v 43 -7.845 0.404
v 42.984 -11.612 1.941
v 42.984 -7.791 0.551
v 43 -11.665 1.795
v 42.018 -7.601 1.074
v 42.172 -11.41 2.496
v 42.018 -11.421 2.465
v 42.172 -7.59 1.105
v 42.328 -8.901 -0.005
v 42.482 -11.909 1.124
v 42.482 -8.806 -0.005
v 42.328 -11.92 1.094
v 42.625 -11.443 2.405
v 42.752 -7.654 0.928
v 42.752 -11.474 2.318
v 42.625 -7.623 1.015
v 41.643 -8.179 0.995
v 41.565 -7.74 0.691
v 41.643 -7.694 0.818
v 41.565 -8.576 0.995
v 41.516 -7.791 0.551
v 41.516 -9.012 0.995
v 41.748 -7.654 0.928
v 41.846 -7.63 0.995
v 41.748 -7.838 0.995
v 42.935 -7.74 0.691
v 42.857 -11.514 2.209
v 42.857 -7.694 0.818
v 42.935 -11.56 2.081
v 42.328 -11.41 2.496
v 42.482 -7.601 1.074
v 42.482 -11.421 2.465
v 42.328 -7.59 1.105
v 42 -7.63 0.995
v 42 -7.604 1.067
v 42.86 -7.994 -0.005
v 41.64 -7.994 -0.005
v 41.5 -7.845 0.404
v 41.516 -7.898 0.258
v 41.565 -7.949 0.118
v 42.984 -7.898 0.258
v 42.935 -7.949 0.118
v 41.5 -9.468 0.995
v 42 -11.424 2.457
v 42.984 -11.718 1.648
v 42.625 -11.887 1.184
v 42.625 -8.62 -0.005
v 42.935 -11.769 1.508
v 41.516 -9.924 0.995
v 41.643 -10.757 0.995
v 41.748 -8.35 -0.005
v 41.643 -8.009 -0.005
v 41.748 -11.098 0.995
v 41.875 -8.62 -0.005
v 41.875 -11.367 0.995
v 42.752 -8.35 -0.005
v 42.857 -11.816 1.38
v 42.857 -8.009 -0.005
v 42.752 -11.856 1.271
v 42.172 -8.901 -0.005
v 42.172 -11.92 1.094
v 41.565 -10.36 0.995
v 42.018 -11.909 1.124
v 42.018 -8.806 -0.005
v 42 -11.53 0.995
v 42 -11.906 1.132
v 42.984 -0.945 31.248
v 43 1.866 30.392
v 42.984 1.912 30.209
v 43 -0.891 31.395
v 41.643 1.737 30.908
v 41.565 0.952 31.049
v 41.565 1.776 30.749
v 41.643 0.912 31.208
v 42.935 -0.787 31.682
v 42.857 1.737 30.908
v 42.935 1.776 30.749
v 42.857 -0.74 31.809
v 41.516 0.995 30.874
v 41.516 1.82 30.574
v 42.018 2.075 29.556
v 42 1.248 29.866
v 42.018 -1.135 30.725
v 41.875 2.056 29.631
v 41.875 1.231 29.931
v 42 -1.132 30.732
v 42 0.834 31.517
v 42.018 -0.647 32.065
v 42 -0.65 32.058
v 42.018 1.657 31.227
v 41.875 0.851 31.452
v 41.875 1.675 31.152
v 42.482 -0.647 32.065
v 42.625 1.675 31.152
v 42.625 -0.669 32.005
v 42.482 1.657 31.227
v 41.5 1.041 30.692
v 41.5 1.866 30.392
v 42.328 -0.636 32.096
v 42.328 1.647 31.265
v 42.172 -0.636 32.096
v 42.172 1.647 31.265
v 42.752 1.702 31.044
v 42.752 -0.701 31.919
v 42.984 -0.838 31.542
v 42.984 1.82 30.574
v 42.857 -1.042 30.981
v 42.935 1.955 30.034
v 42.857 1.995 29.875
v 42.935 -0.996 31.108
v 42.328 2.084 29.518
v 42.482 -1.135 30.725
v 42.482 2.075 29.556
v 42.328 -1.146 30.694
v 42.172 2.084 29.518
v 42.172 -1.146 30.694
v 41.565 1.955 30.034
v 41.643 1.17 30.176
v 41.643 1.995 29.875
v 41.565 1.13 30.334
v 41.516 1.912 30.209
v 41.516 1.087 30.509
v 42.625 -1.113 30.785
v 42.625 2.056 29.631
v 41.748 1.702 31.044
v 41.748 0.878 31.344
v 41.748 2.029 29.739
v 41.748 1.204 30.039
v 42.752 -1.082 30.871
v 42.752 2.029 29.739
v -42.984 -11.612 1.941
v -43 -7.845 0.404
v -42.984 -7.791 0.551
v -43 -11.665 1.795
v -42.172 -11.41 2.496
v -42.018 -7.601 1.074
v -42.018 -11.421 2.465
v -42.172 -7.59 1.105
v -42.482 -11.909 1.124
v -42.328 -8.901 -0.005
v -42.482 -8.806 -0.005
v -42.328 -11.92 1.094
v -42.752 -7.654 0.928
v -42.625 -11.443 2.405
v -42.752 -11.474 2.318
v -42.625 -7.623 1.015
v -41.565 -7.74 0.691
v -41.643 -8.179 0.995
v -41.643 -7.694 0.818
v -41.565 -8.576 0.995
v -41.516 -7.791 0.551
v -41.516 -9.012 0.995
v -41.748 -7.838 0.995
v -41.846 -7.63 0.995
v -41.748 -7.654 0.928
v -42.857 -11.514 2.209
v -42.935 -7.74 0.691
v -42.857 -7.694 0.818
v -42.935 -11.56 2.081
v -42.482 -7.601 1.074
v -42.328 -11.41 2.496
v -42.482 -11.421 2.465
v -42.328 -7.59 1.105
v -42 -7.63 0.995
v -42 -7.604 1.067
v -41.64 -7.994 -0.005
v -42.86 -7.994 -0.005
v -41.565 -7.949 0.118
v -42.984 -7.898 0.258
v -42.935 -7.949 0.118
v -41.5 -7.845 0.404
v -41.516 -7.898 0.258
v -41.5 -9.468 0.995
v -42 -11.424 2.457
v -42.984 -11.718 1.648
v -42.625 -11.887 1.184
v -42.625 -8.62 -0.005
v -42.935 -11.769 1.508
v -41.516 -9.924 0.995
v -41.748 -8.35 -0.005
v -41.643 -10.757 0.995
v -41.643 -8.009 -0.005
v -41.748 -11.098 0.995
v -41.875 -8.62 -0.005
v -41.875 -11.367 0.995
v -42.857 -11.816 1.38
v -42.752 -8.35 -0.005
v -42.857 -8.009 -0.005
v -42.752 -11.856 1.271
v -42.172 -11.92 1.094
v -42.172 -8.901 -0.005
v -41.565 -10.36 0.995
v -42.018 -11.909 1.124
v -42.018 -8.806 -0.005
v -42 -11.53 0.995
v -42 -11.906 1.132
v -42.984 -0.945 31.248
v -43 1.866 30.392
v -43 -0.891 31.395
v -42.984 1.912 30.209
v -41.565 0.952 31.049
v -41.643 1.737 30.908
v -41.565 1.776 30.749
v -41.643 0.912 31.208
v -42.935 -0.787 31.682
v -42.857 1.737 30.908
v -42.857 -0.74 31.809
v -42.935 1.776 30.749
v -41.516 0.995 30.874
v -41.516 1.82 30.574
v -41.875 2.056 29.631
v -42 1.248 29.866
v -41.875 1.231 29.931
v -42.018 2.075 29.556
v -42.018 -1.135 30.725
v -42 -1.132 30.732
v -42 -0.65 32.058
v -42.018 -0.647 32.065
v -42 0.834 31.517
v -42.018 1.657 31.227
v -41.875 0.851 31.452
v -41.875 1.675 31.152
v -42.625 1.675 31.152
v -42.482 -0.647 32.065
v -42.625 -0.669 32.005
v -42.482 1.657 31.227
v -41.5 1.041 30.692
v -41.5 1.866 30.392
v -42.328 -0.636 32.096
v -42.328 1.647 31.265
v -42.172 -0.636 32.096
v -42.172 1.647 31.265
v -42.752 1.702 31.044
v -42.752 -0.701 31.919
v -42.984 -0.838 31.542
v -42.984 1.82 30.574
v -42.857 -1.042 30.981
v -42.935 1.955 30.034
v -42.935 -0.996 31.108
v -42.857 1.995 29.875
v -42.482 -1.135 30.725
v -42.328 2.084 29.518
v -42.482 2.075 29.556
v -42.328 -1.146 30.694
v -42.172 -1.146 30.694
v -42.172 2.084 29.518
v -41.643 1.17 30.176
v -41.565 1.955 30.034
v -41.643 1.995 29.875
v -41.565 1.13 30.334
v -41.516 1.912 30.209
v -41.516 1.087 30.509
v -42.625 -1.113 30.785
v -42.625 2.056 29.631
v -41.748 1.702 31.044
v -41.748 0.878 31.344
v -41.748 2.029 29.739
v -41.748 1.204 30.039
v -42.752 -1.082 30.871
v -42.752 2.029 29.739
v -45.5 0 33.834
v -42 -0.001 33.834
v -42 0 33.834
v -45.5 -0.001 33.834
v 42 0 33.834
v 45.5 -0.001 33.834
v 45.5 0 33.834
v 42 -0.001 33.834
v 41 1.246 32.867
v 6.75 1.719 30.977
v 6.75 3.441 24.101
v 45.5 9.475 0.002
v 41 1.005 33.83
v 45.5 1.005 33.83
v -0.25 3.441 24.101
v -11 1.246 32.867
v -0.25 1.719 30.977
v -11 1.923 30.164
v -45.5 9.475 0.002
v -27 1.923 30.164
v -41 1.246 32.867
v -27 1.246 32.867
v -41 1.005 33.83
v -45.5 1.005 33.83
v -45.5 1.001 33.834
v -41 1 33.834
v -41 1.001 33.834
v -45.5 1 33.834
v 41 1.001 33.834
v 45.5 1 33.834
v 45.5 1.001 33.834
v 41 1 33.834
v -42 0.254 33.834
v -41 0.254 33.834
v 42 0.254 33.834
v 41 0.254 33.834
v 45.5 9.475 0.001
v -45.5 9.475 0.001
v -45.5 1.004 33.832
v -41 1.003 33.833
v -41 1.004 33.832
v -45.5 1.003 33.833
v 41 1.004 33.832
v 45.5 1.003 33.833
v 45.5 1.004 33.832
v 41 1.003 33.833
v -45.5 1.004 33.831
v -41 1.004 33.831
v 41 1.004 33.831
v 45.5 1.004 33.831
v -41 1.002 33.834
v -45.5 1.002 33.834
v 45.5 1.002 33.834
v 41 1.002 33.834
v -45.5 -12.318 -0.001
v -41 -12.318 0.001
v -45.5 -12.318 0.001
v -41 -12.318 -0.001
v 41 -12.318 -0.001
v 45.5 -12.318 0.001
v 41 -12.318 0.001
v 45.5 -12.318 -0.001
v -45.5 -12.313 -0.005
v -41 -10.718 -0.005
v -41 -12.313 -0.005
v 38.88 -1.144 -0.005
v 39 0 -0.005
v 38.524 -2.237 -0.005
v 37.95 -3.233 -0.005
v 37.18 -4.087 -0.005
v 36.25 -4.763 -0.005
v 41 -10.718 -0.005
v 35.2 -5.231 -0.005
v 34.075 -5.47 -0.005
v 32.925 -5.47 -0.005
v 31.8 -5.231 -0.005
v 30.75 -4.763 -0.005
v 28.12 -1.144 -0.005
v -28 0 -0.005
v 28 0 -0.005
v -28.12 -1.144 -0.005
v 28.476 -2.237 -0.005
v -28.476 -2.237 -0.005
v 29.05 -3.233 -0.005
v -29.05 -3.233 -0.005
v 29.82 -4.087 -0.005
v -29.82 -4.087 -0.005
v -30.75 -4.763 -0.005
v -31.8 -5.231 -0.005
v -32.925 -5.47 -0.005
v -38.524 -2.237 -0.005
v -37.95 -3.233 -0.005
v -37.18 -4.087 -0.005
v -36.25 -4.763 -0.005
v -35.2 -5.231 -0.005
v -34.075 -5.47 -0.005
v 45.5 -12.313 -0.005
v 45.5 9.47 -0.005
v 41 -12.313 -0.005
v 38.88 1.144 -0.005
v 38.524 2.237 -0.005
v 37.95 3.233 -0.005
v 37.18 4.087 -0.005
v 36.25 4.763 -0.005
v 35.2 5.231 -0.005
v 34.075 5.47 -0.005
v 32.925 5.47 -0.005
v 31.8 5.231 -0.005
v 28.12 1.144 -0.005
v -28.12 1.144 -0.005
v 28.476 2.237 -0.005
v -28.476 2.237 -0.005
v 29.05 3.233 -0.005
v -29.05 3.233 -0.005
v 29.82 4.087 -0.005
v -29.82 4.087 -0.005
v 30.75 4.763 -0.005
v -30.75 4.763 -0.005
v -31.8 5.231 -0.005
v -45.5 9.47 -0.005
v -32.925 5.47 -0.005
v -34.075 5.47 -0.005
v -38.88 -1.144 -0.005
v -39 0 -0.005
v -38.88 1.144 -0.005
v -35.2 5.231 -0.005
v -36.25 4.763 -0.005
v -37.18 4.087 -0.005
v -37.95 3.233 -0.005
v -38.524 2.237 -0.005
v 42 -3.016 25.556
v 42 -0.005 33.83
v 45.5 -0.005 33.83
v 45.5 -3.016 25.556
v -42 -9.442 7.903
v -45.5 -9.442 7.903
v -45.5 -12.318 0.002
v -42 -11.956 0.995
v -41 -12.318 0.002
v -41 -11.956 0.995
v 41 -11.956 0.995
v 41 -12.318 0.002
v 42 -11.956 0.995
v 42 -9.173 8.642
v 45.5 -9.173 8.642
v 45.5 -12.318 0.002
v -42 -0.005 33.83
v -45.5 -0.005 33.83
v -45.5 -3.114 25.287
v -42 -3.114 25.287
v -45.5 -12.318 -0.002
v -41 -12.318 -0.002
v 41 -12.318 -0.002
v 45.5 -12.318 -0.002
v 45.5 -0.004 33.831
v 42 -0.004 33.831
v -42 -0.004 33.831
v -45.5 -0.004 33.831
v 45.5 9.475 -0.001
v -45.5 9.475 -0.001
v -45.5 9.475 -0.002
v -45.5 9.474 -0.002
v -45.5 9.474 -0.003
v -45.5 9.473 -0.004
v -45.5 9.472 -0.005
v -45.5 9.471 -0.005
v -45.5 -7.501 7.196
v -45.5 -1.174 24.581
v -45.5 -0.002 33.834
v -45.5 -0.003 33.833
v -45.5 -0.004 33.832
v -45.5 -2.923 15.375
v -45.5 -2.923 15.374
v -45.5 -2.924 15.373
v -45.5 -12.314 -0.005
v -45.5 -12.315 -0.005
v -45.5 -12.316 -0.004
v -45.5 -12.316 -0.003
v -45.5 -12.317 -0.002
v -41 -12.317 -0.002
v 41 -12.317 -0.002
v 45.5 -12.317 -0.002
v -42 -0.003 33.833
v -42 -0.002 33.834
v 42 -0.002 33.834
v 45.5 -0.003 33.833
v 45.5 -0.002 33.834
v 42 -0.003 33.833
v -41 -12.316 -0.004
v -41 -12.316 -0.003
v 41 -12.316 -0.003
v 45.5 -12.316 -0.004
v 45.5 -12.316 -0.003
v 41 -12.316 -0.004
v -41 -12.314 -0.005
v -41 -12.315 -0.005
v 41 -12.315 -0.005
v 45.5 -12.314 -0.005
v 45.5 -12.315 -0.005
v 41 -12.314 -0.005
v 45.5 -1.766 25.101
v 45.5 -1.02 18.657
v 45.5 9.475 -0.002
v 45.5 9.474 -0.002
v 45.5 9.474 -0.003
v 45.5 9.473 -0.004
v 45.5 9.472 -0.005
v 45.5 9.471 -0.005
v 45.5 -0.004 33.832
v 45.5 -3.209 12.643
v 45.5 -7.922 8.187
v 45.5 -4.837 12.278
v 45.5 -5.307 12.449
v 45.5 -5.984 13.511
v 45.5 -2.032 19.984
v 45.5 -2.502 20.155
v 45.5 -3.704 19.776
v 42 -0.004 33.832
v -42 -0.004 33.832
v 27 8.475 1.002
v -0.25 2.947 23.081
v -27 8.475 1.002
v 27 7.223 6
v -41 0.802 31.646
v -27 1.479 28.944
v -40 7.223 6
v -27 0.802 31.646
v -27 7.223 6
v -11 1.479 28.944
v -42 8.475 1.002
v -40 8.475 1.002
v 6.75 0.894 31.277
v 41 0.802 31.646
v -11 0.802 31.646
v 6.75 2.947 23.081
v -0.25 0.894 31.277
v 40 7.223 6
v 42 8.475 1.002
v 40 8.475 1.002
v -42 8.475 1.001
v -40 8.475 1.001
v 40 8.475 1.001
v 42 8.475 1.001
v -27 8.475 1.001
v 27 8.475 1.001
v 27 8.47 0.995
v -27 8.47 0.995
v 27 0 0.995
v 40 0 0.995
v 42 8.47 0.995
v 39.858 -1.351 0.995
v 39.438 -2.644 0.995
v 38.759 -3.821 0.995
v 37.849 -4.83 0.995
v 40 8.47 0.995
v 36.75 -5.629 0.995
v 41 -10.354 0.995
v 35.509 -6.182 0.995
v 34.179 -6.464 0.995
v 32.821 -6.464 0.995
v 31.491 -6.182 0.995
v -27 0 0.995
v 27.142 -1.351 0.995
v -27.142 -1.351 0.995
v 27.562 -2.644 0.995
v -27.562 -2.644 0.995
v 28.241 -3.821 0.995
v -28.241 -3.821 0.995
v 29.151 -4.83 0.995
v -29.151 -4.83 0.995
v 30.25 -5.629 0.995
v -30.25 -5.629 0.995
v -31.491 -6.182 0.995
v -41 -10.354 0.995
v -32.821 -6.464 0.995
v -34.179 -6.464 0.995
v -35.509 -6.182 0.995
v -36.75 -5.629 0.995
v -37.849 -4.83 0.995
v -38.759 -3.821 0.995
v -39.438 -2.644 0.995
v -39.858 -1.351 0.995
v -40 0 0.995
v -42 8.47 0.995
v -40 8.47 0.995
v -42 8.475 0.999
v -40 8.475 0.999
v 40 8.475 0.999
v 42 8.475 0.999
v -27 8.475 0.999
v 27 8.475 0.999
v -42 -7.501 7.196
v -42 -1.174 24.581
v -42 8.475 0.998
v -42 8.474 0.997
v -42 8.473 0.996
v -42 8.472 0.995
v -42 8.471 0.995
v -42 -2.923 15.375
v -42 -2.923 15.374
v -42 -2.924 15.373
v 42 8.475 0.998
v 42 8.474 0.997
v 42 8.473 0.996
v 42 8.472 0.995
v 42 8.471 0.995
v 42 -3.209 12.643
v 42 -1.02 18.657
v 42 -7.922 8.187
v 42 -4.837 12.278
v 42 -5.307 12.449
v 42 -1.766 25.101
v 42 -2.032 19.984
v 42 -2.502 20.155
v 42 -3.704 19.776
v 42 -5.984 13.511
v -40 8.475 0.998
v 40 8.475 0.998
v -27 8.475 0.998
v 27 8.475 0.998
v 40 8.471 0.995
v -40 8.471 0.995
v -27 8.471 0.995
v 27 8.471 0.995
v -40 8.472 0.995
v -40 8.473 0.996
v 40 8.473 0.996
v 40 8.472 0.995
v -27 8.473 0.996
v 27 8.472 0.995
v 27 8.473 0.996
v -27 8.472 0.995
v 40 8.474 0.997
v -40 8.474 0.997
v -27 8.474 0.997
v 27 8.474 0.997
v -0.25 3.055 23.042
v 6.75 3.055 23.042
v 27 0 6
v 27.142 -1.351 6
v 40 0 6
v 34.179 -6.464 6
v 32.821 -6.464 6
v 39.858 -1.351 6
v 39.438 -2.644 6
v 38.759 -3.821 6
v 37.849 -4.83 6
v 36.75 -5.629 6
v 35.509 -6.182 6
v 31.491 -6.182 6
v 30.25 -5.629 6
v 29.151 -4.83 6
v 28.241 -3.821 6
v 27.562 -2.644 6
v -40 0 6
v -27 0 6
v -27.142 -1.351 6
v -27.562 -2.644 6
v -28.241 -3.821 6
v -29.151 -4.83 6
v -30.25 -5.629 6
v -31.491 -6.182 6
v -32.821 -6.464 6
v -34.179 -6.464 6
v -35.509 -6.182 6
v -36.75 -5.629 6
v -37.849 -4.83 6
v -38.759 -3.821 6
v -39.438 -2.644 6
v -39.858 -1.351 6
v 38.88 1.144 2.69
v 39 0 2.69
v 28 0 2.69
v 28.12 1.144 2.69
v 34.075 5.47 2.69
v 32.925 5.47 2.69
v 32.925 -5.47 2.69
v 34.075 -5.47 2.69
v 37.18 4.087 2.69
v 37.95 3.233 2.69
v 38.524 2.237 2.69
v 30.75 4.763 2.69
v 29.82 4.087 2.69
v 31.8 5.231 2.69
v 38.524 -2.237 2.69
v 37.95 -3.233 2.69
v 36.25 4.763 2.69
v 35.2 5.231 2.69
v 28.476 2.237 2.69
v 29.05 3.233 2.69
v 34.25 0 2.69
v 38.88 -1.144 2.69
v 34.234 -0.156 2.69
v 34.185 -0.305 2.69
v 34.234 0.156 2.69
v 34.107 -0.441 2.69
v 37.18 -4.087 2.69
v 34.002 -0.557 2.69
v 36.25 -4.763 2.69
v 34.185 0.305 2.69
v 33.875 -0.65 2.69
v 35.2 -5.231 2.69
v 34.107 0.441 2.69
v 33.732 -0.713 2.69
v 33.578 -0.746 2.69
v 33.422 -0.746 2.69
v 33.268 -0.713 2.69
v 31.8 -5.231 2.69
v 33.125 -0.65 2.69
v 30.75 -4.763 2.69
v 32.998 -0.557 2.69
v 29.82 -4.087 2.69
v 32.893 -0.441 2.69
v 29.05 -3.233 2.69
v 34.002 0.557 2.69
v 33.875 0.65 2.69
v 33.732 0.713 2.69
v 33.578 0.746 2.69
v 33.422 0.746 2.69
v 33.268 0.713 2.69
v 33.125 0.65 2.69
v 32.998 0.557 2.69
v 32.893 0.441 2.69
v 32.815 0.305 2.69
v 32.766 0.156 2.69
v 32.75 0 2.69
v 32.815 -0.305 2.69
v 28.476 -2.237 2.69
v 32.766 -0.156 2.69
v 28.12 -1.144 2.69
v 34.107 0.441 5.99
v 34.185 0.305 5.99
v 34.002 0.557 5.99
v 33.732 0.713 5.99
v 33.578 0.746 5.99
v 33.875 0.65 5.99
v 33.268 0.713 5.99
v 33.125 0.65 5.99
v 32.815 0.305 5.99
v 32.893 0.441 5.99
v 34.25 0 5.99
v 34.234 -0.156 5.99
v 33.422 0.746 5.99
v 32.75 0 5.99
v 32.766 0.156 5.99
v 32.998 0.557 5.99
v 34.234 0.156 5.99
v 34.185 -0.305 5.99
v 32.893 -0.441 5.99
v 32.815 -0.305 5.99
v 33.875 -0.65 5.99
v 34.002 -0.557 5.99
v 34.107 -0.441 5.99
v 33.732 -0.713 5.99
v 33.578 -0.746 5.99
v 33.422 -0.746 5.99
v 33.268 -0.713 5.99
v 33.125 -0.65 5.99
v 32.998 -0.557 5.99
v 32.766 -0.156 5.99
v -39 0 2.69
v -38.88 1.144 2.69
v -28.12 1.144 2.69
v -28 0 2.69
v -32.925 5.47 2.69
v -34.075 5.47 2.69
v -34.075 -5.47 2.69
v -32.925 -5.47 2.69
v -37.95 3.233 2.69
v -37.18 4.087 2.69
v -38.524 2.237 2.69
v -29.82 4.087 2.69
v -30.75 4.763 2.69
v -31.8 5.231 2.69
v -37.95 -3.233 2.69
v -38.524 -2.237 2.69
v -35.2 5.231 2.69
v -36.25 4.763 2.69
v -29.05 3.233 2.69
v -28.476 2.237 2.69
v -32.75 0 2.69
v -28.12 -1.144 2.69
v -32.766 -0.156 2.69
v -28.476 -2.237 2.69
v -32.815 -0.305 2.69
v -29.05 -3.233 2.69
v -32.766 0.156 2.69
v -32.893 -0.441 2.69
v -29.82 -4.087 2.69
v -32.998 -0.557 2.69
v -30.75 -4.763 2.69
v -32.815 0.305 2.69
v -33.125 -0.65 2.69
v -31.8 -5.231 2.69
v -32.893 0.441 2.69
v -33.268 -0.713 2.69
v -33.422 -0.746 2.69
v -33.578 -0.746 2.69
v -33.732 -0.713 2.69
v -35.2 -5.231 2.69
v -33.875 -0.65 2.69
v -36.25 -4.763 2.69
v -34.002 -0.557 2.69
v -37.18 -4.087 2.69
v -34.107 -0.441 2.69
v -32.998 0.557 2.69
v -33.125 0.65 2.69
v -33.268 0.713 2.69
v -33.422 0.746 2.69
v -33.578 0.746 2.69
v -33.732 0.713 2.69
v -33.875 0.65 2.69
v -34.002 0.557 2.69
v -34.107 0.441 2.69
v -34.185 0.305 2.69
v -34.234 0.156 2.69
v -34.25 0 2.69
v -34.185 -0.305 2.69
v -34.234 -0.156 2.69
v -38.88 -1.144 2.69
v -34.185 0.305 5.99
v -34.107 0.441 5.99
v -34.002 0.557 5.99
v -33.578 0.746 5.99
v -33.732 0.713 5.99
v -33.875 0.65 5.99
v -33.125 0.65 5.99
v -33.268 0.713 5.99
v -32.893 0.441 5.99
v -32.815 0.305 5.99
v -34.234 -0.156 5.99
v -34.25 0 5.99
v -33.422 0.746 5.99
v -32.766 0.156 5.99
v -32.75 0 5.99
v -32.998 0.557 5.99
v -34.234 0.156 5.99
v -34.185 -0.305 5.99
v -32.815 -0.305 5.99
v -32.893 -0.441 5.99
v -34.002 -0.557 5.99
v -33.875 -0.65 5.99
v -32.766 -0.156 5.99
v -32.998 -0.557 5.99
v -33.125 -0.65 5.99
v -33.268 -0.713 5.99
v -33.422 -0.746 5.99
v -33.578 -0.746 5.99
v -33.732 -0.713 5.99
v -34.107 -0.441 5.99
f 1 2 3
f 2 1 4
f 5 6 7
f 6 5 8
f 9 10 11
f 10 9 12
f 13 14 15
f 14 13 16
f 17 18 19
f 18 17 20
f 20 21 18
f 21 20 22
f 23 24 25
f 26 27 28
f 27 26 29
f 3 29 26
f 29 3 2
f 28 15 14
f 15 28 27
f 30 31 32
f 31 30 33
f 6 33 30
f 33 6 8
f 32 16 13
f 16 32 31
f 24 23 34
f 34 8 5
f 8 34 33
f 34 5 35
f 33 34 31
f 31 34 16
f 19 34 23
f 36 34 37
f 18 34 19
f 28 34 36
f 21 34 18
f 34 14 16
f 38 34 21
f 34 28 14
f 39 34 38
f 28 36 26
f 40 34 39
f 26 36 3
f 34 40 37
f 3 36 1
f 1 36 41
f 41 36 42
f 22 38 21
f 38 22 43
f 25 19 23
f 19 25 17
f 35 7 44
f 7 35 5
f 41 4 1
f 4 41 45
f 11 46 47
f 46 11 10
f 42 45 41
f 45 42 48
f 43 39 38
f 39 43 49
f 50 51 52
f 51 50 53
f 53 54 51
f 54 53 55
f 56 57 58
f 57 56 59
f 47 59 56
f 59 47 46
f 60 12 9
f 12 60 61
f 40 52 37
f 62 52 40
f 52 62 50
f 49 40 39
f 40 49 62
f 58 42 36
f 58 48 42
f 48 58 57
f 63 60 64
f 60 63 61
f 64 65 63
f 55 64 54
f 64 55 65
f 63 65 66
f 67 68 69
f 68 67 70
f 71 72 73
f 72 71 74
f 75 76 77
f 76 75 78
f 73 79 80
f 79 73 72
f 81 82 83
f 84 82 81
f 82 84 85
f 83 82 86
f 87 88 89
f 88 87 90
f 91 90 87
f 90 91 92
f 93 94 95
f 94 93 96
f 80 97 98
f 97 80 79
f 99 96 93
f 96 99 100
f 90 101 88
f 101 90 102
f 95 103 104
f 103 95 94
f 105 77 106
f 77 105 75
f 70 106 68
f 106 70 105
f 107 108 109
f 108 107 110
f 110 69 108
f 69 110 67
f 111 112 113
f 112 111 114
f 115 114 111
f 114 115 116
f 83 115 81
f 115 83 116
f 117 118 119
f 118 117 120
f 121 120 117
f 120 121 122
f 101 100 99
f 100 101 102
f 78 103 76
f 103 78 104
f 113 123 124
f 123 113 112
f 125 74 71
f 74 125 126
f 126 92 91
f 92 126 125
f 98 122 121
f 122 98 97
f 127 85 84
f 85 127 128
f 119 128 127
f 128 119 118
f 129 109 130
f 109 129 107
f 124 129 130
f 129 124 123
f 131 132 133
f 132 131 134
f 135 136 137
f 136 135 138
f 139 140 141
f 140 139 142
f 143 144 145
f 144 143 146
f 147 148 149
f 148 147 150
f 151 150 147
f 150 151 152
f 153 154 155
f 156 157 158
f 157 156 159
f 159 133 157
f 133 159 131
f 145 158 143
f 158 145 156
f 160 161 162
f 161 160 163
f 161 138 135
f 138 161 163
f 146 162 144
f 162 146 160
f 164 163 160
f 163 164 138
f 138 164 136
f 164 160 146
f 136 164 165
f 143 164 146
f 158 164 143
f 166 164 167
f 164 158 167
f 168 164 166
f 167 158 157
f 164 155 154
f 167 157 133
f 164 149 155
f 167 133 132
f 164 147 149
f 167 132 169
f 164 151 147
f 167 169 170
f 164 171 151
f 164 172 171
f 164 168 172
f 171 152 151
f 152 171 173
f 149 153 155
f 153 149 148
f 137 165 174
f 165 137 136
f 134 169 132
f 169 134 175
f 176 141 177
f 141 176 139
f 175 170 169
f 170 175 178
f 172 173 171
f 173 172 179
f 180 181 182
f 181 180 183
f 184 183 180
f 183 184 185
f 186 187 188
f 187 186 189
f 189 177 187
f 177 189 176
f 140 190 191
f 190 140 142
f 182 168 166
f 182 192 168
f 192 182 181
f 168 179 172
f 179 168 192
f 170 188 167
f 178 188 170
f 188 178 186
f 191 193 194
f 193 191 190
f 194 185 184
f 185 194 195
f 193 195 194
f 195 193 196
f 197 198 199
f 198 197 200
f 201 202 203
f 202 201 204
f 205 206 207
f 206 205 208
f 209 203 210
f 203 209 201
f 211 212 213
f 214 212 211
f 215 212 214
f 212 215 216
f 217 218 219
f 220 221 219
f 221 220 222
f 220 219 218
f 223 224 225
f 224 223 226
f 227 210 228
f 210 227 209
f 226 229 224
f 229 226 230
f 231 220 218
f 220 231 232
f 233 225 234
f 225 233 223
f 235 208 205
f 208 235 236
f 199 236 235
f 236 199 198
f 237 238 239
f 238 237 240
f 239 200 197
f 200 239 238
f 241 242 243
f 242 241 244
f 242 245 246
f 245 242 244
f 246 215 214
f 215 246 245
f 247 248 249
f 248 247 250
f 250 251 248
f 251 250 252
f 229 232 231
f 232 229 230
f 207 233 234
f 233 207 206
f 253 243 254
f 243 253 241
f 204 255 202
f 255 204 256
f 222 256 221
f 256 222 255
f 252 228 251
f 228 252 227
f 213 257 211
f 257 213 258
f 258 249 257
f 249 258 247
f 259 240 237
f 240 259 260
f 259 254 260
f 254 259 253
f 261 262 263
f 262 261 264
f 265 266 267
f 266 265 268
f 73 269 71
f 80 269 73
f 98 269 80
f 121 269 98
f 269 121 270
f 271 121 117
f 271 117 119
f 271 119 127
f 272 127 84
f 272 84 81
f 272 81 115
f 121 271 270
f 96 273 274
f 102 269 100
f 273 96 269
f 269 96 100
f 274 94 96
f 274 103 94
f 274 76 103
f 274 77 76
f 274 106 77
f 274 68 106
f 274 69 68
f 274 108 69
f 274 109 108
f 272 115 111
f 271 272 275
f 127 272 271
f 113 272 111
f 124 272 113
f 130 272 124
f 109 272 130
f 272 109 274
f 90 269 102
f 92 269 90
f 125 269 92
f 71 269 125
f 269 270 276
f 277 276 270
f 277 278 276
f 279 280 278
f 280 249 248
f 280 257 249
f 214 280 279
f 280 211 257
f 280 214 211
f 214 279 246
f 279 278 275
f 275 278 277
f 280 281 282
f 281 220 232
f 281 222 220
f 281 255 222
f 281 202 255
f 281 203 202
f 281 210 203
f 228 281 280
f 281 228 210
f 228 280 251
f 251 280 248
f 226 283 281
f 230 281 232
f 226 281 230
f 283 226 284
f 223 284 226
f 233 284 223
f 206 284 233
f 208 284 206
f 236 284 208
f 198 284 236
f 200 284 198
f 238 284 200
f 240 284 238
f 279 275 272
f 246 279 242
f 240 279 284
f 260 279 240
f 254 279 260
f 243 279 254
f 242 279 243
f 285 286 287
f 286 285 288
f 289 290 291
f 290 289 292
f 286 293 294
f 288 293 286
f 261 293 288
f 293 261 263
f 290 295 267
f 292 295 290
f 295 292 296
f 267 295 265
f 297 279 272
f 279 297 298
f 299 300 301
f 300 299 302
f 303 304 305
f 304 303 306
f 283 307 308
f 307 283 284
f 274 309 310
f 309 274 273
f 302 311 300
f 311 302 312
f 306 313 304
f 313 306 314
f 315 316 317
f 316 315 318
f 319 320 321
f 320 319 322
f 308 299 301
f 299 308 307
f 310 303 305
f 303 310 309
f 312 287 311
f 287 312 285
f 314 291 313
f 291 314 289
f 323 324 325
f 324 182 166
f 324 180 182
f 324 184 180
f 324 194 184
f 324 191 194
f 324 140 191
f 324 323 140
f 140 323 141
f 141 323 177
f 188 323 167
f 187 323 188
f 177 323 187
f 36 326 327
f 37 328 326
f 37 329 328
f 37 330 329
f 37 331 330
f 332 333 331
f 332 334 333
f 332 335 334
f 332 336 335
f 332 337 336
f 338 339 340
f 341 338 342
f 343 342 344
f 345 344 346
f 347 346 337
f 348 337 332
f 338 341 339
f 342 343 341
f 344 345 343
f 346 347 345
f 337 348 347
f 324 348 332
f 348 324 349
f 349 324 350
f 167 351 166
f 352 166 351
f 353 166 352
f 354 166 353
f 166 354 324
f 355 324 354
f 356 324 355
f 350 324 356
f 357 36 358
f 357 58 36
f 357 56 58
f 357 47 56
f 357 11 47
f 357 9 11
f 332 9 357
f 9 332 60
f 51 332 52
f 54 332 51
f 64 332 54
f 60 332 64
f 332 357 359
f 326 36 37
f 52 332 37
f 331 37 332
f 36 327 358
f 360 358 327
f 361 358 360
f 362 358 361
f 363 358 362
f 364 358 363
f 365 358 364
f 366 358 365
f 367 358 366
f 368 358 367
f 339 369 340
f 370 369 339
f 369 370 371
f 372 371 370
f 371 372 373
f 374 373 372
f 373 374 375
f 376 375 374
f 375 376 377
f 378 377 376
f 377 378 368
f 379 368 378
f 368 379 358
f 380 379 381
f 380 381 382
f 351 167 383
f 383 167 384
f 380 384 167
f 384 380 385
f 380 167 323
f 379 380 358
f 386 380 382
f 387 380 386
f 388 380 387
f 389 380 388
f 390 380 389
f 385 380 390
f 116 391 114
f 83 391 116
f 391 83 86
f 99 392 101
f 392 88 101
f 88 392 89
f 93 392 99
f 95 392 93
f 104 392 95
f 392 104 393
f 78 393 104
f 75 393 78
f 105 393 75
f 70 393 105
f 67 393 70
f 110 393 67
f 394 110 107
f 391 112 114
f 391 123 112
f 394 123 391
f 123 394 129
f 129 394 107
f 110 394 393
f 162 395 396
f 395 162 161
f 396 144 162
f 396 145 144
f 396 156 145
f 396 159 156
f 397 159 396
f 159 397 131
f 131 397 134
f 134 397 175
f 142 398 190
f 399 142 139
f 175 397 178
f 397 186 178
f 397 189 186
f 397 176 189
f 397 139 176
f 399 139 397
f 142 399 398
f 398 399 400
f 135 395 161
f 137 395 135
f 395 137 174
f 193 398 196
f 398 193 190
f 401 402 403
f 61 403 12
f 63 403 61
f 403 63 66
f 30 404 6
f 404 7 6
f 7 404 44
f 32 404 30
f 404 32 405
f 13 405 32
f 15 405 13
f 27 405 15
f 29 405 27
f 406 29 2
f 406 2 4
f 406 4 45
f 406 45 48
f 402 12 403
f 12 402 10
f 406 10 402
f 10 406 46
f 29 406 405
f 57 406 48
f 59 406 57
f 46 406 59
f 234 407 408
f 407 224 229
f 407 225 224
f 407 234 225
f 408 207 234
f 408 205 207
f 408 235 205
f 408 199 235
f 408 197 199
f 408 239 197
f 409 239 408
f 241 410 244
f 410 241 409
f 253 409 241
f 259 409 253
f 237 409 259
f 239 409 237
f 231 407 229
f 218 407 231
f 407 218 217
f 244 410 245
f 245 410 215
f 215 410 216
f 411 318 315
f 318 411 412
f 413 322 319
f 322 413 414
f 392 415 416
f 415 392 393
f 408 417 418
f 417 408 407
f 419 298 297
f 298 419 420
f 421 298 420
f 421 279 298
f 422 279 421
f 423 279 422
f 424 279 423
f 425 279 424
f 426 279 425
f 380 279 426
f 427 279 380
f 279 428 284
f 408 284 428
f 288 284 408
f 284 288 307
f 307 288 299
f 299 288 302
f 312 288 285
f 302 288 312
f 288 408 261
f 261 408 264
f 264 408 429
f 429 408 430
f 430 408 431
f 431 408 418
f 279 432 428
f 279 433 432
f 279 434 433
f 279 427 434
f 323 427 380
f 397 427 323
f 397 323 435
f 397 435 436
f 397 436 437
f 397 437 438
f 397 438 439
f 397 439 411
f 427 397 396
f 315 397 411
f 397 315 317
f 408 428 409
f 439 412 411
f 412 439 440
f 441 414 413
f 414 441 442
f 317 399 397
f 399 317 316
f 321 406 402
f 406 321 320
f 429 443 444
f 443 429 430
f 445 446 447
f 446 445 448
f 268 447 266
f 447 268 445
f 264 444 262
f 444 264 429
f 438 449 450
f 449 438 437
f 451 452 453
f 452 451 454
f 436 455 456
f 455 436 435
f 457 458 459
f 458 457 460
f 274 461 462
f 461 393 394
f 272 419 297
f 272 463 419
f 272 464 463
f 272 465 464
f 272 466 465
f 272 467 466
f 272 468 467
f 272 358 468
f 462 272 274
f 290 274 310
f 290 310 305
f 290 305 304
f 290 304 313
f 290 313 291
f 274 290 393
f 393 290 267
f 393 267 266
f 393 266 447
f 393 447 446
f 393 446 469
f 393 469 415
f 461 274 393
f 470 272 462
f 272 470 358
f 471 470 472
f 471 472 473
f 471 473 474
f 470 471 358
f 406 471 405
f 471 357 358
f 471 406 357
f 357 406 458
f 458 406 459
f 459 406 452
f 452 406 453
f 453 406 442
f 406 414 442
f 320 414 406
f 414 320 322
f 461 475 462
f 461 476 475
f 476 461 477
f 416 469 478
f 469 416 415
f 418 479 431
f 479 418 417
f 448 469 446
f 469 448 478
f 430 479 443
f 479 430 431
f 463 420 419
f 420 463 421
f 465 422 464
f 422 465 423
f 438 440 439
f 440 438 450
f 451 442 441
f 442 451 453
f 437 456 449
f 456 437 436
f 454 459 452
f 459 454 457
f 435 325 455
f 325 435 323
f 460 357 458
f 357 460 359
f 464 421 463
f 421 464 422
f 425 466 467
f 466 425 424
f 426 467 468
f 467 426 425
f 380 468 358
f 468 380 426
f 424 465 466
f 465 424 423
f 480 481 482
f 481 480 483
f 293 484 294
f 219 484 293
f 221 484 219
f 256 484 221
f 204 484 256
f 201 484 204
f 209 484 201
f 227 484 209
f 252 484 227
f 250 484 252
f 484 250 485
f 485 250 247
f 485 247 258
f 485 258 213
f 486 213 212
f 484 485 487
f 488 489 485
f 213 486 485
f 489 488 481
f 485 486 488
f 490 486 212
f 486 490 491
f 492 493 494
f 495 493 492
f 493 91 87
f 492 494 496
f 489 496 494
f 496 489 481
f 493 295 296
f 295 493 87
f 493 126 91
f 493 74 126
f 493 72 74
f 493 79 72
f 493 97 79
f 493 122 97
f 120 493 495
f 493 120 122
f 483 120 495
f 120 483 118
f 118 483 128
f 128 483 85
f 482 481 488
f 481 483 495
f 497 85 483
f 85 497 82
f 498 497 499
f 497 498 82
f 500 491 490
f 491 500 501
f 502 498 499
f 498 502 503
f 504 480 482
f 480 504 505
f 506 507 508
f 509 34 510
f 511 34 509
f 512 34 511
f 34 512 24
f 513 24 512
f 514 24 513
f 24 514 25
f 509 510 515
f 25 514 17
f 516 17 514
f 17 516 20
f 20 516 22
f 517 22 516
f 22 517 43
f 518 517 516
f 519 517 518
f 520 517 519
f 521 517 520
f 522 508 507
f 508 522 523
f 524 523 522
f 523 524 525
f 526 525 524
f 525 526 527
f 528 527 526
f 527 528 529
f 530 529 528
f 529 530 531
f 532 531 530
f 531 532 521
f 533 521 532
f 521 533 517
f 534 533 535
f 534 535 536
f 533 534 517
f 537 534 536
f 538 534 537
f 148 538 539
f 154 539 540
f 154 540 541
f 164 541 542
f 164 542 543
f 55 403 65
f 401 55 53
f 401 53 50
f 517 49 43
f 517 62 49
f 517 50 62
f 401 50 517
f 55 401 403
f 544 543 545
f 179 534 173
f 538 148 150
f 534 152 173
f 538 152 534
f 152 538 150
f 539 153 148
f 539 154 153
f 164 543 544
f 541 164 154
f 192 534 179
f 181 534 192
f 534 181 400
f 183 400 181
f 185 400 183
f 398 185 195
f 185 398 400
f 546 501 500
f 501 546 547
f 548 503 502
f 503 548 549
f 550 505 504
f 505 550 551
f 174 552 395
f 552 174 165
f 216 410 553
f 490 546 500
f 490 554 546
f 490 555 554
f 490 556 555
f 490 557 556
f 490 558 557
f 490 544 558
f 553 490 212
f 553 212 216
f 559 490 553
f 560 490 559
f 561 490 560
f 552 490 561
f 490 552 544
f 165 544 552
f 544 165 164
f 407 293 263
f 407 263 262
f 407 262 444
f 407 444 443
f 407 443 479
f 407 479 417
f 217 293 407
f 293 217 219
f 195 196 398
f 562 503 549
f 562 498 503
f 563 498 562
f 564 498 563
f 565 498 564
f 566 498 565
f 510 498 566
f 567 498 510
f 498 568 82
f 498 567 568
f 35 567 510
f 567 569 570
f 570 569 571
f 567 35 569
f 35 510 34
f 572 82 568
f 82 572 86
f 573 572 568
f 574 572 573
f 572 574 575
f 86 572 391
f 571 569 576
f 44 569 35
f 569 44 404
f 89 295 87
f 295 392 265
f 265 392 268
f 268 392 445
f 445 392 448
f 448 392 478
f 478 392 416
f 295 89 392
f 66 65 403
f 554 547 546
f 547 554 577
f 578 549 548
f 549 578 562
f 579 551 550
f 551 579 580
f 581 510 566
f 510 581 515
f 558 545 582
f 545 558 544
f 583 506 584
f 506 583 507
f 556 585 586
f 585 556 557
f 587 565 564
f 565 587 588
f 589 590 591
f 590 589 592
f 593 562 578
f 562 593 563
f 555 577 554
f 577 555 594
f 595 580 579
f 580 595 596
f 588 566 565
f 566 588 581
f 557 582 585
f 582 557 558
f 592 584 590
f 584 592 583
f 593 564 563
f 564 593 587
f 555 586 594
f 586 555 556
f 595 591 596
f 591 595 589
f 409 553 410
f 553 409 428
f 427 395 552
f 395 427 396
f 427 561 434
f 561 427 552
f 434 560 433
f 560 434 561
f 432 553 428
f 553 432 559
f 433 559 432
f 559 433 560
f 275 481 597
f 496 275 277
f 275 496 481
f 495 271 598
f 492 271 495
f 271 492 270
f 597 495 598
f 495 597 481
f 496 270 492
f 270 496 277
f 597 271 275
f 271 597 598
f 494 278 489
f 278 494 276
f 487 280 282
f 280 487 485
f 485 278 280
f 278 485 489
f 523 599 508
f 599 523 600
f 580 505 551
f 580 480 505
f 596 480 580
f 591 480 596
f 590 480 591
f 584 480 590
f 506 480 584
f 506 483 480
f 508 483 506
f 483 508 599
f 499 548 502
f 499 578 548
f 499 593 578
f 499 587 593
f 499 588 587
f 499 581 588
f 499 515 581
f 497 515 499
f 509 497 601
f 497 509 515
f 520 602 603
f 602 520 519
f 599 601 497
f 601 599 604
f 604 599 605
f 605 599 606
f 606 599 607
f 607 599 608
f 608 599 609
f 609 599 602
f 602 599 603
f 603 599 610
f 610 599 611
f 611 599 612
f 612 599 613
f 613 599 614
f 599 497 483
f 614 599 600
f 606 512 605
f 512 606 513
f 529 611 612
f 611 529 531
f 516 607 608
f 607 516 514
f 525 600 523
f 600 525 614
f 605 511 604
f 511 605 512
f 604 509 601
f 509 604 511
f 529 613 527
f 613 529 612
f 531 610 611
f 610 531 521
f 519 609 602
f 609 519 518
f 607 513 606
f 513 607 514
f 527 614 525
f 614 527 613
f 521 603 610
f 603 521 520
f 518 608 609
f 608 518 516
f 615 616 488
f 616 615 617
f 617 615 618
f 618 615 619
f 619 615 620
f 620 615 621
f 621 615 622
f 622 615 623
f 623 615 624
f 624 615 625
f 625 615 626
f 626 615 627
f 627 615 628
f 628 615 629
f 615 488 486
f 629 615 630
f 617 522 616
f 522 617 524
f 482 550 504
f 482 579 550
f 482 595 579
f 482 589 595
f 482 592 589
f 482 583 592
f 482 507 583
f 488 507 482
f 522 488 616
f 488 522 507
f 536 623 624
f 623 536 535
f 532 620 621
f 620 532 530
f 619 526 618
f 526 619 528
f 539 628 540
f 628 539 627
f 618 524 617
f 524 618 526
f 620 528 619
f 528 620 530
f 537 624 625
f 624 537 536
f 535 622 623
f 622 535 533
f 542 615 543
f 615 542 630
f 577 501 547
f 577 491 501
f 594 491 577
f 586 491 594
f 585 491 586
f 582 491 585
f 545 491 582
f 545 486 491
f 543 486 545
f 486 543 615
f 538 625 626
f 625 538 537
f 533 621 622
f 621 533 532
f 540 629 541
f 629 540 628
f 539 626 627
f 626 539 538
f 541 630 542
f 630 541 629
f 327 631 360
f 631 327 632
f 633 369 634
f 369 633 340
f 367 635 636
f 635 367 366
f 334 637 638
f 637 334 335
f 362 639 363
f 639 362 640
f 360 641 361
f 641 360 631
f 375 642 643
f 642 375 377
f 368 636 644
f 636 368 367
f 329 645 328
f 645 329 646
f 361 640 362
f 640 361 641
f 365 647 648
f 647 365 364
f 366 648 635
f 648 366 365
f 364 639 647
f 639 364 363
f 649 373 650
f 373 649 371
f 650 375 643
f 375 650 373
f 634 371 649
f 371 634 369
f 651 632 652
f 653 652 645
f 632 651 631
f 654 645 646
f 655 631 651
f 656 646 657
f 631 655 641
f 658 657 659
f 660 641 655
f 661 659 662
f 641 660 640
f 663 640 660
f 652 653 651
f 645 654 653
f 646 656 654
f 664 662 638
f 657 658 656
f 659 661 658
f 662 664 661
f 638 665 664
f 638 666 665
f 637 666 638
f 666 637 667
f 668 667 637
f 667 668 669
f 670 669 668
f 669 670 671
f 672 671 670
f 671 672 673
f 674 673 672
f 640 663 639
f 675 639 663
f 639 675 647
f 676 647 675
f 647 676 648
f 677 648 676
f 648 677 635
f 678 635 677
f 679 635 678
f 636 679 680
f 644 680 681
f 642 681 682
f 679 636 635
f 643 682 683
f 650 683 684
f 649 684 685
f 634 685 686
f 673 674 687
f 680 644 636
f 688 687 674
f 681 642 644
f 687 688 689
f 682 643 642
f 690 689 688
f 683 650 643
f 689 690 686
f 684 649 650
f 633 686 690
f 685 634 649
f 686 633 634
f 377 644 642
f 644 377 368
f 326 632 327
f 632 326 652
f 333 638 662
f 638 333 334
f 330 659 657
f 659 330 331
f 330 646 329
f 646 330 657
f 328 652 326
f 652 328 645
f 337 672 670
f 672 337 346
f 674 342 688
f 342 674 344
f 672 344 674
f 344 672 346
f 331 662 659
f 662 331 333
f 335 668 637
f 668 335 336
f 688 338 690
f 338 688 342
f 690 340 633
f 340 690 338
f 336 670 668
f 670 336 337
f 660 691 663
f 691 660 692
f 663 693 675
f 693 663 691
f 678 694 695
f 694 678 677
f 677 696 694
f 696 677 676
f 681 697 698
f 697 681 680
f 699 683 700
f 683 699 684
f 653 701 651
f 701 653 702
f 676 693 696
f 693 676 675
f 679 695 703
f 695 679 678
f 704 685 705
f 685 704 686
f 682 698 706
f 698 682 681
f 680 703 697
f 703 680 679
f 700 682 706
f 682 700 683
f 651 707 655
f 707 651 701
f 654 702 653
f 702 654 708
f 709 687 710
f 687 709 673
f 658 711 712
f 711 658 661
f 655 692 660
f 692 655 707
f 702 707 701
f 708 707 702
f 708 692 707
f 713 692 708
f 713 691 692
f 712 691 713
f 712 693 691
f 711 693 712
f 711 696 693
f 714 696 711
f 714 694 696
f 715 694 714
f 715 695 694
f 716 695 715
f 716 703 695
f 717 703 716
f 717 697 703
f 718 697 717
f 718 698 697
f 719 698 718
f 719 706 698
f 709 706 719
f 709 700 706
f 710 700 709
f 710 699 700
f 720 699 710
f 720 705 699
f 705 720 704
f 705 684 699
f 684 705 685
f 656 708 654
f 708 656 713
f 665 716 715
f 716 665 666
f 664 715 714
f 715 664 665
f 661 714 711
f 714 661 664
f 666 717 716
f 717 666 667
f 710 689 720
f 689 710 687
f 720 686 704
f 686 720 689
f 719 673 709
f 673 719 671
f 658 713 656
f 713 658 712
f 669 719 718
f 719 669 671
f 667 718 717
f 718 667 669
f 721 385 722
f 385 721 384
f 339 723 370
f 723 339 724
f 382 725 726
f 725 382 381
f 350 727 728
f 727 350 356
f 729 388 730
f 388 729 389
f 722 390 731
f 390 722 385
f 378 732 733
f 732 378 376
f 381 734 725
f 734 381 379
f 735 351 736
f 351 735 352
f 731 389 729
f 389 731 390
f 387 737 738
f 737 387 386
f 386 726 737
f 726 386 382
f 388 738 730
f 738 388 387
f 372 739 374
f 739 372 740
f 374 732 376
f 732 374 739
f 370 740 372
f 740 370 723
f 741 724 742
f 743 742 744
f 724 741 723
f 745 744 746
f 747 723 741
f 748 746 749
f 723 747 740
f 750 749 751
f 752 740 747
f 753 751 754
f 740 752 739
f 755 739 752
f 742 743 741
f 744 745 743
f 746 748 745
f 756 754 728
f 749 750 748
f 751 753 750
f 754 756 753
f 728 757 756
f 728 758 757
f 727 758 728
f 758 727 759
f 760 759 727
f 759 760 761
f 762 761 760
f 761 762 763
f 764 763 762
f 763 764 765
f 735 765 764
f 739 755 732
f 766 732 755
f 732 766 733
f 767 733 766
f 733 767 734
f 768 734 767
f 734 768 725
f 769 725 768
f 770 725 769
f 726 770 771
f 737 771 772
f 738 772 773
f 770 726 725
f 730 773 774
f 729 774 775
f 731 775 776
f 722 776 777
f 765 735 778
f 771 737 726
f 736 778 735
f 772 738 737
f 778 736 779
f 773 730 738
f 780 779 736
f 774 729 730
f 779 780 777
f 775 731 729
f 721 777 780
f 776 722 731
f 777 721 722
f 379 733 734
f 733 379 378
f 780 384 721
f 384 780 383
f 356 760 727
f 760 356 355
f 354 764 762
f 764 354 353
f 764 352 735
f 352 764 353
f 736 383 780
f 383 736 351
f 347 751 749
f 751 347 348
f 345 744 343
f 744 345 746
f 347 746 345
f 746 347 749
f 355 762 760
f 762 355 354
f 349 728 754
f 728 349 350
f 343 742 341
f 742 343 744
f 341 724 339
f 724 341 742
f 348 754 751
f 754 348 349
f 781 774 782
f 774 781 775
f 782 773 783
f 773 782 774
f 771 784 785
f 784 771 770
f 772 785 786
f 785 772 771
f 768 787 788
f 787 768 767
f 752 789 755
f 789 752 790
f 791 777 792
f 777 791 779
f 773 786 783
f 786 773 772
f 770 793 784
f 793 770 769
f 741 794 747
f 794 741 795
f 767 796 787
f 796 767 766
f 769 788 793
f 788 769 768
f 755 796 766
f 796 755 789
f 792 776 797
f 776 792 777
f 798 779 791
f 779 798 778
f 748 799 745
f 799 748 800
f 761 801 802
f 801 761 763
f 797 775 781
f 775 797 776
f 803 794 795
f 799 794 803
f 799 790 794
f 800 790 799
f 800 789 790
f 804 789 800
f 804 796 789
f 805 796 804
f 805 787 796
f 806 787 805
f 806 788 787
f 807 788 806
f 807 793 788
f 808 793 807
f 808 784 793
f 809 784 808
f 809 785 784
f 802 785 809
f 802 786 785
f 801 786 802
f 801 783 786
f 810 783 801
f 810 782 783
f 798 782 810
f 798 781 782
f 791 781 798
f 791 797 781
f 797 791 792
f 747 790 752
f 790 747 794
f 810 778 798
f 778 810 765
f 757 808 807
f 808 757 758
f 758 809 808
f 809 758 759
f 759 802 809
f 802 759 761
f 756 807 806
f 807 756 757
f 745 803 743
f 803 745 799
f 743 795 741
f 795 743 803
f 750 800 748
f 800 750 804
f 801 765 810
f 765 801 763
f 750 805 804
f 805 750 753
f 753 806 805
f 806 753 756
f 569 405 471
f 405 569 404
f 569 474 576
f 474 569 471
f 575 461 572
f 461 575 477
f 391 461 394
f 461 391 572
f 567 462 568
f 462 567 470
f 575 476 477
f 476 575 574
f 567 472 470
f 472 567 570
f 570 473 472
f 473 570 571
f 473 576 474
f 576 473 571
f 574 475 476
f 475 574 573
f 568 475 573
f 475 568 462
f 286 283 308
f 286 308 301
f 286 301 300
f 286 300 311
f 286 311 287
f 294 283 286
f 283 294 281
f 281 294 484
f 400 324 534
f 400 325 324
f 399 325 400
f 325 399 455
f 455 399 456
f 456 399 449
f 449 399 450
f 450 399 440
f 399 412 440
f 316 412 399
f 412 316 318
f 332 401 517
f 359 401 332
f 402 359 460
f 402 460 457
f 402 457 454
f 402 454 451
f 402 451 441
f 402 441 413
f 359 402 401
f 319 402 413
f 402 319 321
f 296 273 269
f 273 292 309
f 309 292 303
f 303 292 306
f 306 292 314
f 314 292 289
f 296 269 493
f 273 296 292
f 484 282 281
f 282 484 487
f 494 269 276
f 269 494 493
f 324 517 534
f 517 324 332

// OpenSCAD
// file: copy_mirror.scad
// Borrowed from http://forum.openscad.org/Wish-mirror-copy-true-td10681.html
module copy_mirror(vec=[0,1,0])
{
    children();
    mirror(vec) children();
}
// main file
$fn=30;

include <copy_mirror.scad>

BOARD_X = 83+2*2;
BOARD_Y = 27.5+2*2;

DISP_X=89;
DISP_Y=36;
DISP_Z=1.5;

DISP_E_X=68.3;
DISP_E_Y=30.5;

CASE_X=DISP_X+2;
CASE_Y=DISP_Y+2;
CASE_Z=DISP_Z+6;

SIDE_B_EDGE_Y=3.5*2;
SIDE_B_YPOS=4;

BOARD_ANGLE=80;

module display() {
  translate([0, 0, DISP_Z/2])
  cube(size=[DISP_X, DISP_Y, DISP_Z], center=true);

  translate([-DISP_X/2+DISP_E_X/2+7.2, 0, DISP_Z])
  color("green")
  cube(size=[DISP_E_X, DISP_E_Y, 0.1], center=true);
}

DISP_ANGLE=70;
*%translate([0, -DISP_Y*cos(DISP_ANGLE)/2-1, DISP_Y*sin(DISP_ANGLE)/2])
rotate([DISP_ANGLE, 0, 0])
display();

BAT_X=43;
BAT_Y=21.7;
BAT_Z=5.7;
// BAT
*%color("red")
translate([0, -(DISP_Y)*cos(DISP_ANGLE)/2+3, BAT_Y*sin(DISP_ANGLE)/2+6])
rotate([DISP_ANGLE, 0, 0])
cube(size=[BAT_X, BAT_Y, BAT_Z], center=true);

module caseBase(args) {
  hull() {
    translate([0, 0, DISP_Y*sin(DISP_ANGLE)])
    rotate([0, 90, 0])
    cylinder(d=0.01, h=CASE_X, center=true);

    translate([0, 1, DISP_Y*sin(DISP_ANGLE)])
    rotate([0, 90, 0])
    cylinder(d=0.01, h=CASE_X, center=true);

    translate([0, -DISP_Y*cos(DISP_ANGLE), 0])
    rotate([0, 90, 0])
    cylinder(d=0.01, h=CASE_X, center=true);

    translate([0, BOARD_Y*cos(BOARD_ANGLE)+SIDE_B_YPOS, 0])
    rotate([0, 90, 0])
    cylinder(d=0.01, h=CASE_X, center=true);
  }
}

module case() {
  difference() {
    union() {
      difference() {
        caseBase();

        // inner space
        translate([0, -1.0, 1])
        translate([0, 0, 0])
        resize([CASE_X-SIDE_B_EDGE_Y, 0, 0])
        caseBase();

        // display con
        CON_A_Z=3;
        translate([0, -DISP_Y*cos(DISP_ANGLE)/2-1, DISP_Y*sin(DISP_ANGLE)/2])
        rotate([DISP_ANGLE, 0, 0])
        translate([-(DISP_X/2-10/2)-1, 0, -CON_A_Z/2])
        hull() {
          cube(size=[10, 18.5, CON_A_Z], center=true);
          translate([0, 0, -CON_A_Z/2-1.5])
          rotate([0, 90, 0])
          cylinder(d=0.01, h=10, center=true);
        }

        // screw holes
        translate([0, -DISP_Y*cos(DISP_ANGLE)/2-1, DISP_Y*sin(DISP_ANGLE)/2])
        rotate([DISP_ANGLE, 0, 0])
        copy_mirror([1,0,0])
        copy_mirror([0,1,0])
        difference() {
          translate([DISP_X/2-2.25, -DISP_Y/2+2.25, -5])
          cylinder(d=1.5, h=CASE_Z, center=!true);
        }

        // push sw
        translate([0, -DISP_Y*cos(DISP_ANGLE)/2-1, DISP_Y*sin(DISP_ANGLE)/2])
        rotate([DISP_ANGLE, 0, 0])
        translate([-DISP_X/2+47.75, DISP_Y/2-5.25, 0])
        cube(size=[7, 7, CASE_Z*2], center=true);

        // sd slot
        translate([0, -DISP_Y*cos(DISP_ANGLE)/2-1, DISP_Y*sin(DISP_ANGLE)/2])
        rotate([DISP_ANGLE, 0, 0])
        translate([-DISP_X/2+25.5, DISP_Y/2, 0])
        cube(size=[16, 20, 8], center=true);
      }

      // magnet
      intersection() {
        resize([CASE_X-SIDE_B_EDGE_Y, 0, 0])
        caseBase();

        copy_mirror([1, 0, 0])
        translate([BOARD_X/2-10, 0, 0])
        hull() {
          cylinder(d=10+3, h=6, center=false);
          translate([0, (10+3), 6/2])
          cube(size=[10+3, 0.01, 6], center=true);
        }
      }

      // frame
  *    difference() {
        resize([CASE_X-SIDE_B_EDGE_Y, 0, 0])
        caseBase();
        translate([0, 0, BOARD_Y*sin(BOARD_ANGLE)/2+1])
        rotate([BOARD_ANGLE, 0, 0])
        resize([BOARD_X*2, BOARD_Y, 0])
        cylinder(d=1, h=40, center=true);
      }
    } // union

    // magnet
    copy_mirror([1, 0, 0])
    translate([BOARD_X/2-10, 0, -0.01])
    union() {
      cylinder(d=10+1, h=2.7, center=false);
      cylinder(d=1.5, h=6, center=false);
    }

    // edge
    translate([0, -DISP_Y*cos(DISP_ANGLE)/2, DISP_Y*sin(DISP_ANGLE)/2])
    rotate([DISP_ANGLE, 0, 0])
    translate([0, 0, -1/2])
    cube(size=[DISP_X-SIDE_B_EDGE_Y, DISP_Y+20, 2], center=true);

    // USB
    translate([0, -1, BOARD_Y*sin(BOARD_ANGLE)/2])
    rotate([DISP_ANGLE, 0, 0]) {

      translate([BOARD_X/2-5, -BOARD_Y/2+15.5, 4.5+1])
      rotate([0, 180, -90])
      USB_BOARD_DIF();

  *    translate([CASE_X/2-1, -BOARD_Y/2+14.8, 2])
      rotate([0, 90, 0])
      hull() {
        copy_mirror([0, 1, 0])
        translate([0, 7/2, 0])
        cylinder(d=7, h=10, center=!true);
      }
    }
  }
}

case();


USB_X = 18;
USB_Y = 15;
module USB_BOARD_DIF(scZ) {

  // BOARD
  difference() {
    translate([0, 0, 1.5/2])
    cube(size=[USB_X, USB_Y, 1.5], center=true);

    copy_mirror([1,0,0])
    translate([USB_X/2-3.3/2-1, -USB_Y/2+3.3/2+4, 0])
    cylinder(d=3.3, h=10, center=true);
  }

  // PORT
  USB_P_Y_OFFSET = 10;
  USB_P_Y = 8+USB_P_Y_OFFSET;
  translate([0, USB_Y/2-USB_P_Y/2 + USB_P_Y_OFFSET, 1.5-0.3]){
    hull() {
      // top
      translate([0, 0, 3.2])
      cube(size=[6.2+0.2, USB_P_Y, 0.01], center=true);

      // middle
      translate([0, 0, 1.55])
      cube(size=[8.0+0.2, USB_P_Y, 0.5], center=true);

      // bottom
      translate([0, 0, 0])
      cube(size=[5.2+1, USB_P_Y, 0.01], center=true);
    }
  }

  // screws
  copy_mirror([1,0,0])
  translate([USB_X/2-3.3/2-1, -USB_Y/2+3.3/2+4, -scZ/2])
  cylinder(d=2.2, h=scZ, center=true);
}
